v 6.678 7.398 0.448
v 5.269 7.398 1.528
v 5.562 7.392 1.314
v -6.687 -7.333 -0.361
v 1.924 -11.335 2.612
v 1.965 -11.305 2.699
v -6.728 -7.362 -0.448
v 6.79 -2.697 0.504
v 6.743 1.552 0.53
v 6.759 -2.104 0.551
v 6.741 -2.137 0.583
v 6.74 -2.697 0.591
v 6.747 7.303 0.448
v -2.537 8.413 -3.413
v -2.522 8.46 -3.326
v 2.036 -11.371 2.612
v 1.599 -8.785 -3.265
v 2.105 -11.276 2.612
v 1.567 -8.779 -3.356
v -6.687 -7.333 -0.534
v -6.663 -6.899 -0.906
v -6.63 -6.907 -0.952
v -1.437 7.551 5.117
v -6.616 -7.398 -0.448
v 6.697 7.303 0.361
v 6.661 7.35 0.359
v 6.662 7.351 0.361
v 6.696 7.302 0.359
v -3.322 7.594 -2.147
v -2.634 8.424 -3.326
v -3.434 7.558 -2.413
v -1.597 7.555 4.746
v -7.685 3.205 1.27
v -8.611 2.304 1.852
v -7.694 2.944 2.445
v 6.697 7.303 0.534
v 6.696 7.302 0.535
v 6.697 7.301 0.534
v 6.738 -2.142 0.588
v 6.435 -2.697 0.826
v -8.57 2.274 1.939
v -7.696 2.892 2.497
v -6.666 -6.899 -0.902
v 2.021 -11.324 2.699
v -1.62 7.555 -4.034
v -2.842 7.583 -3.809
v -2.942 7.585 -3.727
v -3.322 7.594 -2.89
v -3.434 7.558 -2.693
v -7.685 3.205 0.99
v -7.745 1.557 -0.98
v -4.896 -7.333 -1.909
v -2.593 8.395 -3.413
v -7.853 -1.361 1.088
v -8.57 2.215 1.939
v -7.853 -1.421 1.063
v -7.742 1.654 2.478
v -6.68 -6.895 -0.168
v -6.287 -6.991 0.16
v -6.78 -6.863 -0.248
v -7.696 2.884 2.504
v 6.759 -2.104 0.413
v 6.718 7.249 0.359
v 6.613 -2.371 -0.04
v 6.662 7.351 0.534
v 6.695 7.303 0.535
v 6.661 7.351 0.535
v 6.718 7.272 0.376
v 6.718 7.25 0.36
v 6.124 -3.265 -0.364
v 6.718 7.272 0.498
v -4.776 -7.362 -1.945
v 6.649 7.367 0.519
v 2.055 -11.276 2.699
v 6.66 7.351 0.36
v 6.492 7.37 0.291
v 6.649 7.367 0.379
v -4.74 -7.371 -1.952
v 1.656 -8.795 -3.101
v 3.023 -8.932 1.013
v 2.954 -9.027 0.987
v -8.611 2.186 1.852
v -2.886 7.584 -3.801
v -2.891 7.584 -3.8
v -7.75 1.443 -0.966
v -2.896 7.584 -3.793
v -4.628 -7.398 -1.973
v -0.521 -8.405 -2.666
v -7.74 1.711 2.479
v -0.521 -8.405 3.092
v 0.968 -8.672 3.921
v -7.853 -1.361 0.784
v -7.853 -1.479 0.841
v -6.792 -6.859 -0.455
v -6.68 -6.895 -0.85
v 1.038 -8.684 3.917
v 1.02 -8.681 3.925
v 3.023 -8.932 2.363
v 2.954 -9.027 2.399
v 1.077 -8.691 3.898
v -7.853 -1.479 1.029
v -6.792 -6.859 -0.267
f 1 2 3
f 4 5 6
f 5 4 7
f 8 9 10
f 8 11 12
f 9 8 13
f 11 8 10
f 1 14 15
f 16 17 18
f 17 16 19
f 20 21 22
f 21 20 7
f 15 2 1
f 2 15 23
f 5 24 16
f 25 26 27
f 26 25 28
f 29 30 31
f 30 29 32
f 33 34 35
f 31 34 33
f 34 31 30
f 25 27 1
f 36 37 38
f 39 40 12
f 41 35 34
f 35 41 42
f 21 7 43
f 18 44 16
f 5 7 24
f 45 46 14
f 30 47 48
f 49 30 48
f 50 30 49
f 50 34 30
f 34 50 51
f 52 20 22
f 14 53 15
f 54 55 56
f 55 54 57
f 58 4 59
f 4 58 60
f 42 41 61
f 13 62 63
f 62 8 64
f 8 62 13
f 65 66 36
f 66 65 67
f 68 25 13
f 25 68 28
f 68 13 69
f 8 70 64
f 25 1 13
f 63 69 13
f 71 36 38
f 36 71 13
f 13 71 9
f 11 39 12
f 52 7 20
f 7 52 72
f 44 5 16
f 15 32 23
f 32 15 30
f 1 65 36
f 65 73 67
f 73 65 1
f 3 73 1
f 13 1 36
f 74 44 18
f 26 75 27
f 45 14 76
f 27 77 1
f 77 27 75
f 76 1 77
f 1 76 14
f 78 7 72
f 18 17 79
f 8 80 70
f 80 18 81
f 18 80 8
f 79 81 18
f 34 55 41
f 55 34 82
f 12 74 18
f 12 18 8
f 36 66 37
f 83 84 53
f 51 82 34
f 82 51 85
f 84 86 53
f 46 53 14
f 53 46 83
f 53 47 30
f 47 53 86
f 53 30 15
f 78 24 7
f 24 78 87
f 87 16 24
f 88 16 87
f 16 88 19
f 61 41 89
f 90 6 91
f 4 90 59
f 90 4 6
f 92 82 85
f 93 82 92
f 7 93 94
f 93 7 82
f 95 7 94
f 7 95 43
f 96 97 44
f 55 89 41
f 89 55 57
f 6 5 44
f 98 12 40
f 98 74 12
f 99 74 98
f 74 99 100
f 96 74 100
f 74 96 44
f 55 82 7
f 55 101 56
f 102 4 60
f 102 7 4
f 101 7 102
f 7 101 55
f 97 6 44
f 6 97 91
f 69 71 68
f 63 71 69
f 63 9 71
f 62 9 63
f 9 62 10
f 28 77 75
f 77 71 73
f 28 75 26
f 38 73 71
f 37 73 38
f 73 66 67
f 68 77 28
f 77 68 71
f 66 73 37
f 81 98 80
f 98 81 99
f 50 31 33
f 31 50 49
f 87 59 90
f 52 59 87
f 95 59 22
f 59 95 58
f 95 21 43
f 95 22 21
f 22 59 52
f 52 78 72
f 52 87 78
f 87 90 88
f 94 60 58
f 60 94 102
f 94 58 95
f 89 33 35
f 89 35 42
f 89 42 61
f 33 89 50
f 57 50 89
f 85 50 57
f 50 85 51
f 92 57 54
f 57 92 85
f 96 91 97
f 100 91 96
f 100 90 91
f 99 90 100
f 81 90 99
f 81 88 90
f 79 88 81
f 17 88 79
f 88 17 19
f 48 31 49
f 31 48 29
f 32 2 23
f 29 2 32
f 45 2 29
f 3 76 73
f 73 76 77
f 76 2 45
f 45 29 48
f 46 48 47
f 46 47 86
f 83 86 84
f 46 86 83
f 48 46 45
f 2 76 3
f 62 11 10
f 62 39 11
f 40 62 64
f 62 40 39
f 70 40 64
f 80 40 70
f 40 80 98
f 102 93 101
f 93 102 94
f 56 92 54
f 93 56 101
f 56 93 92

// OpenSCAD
// Auto-generated OpenSCAD file

    inner_points = 10*[[-0.33527340439148867, 0.7498997662519438, 0.4513456021203321], [-0.15430438504244254, -0.1676220498145088, -0.9748300137498693], [0.11133893181382774, 0.024295540843831454, 0.9748300137498693], [0.2923079511628739, -0.8932262752226212, -0.4513456021203321], [-0.7603709966932597, 0.3145903298228517, -0.3422523638391476], [-0.055234763477199314, -0.8310337132952008, 0.4842537494941892], [0.21927979692174981, 0.5152429571411032, -0.3470320834716172], [0.6658921331270662, -0.21036126826700907, 0.17645232815792009], [-0.7772187463952425, -0.14199914567561245, 0.54726559786484], [-0.6711068070064338, -0.679991889873274, -0.28897842364432175], [0.661801140766184, 0.7271720747422719, 0.5243237045707335]];

    outer_points = 10*[[-0.6646630702233576, -0.7303166978819896, -0.04476341064086725], [-0.12860392172681917, 0.7303166978819896, 0.6536373544767964], [0.12860392172681917, -0.7303166978819896, -0.6536373544767964], [0.6646630702233576, 0.7303166978819896, 0.04476341064086725], [-0.8529840806486279, 0.22448007402066417, 0.18523294019252518], [0.39946967687864576, 0.22448007402066417, -0.7760908846435595], [-0.12424046378929937, -0.2696576228647949, 0.6593222539336372], [0.6690265281608774, -0.2696576228647949, 0.05044831009770817], [-0.5696102969148841, -0.01991608581139187, -0.7421126349582734], [-0.2552897790787969, 0.8365323986755415, -0.33260243302517273], [0.20051337790222834, -1.1275989896931966, 0.26123739691040415]];

    // Convex hull for inner set (I)
    module inner_hull() {
        hull() {
            for (p = inner_points) {
                translate(p) sphere(r=0.1);
            }
        }
    }

    // Convex hull for outer set (O) minus inner hull (O \ I)
    module outer_minus_inner() {
        difference() {
            hull() {
                for (p = outer_points) {
                    translate(p) sphere(r=0.1);
                }
            }
            inner_hull(); // Subtract inner hull
        }
    }

    // Convex hull for outer set (O) minus all translated inner hulls
    module outer_minus_AllTranslationInner() {
        difference() {
            hull() {
                for (p = outer_points) {
                    translate(p) sphere(r=0.1);
                }
            }
            hull() {
                translate([0,0,50]) inner_hull();
                translate([0,0,-50]) inner_hull();
            }; // Subtract translated inner hulls
        }
    }

    // Difference between outer_minus_inner and outer_minus_AllTranslationInner
    module outer_minus_inner_diff() {
        difference() {
            // Outer minus inner
            difference() {
                hull() {
                    for (p = outer_points) {
                        translate(p) sphere(r=0.1);
                    }
                }
                inner_hull();
            }

            // Subtract Outer minus AllTranslationInner
            difference() {
                hull() {
                    for (p = outer_points) {
                        translate(p) sphere(r=0.1);
                    }
                }
                hull() {
                    translate([0,0,50]) inner_hull();
                    translate([0,0,-50]) inner_hull();
                };
            }
        }
    }

    // Rendering all with colors applied
    color([0, 1, 0, 1]) outer_minus_AllTranslationInner(); // Opaque green
    
